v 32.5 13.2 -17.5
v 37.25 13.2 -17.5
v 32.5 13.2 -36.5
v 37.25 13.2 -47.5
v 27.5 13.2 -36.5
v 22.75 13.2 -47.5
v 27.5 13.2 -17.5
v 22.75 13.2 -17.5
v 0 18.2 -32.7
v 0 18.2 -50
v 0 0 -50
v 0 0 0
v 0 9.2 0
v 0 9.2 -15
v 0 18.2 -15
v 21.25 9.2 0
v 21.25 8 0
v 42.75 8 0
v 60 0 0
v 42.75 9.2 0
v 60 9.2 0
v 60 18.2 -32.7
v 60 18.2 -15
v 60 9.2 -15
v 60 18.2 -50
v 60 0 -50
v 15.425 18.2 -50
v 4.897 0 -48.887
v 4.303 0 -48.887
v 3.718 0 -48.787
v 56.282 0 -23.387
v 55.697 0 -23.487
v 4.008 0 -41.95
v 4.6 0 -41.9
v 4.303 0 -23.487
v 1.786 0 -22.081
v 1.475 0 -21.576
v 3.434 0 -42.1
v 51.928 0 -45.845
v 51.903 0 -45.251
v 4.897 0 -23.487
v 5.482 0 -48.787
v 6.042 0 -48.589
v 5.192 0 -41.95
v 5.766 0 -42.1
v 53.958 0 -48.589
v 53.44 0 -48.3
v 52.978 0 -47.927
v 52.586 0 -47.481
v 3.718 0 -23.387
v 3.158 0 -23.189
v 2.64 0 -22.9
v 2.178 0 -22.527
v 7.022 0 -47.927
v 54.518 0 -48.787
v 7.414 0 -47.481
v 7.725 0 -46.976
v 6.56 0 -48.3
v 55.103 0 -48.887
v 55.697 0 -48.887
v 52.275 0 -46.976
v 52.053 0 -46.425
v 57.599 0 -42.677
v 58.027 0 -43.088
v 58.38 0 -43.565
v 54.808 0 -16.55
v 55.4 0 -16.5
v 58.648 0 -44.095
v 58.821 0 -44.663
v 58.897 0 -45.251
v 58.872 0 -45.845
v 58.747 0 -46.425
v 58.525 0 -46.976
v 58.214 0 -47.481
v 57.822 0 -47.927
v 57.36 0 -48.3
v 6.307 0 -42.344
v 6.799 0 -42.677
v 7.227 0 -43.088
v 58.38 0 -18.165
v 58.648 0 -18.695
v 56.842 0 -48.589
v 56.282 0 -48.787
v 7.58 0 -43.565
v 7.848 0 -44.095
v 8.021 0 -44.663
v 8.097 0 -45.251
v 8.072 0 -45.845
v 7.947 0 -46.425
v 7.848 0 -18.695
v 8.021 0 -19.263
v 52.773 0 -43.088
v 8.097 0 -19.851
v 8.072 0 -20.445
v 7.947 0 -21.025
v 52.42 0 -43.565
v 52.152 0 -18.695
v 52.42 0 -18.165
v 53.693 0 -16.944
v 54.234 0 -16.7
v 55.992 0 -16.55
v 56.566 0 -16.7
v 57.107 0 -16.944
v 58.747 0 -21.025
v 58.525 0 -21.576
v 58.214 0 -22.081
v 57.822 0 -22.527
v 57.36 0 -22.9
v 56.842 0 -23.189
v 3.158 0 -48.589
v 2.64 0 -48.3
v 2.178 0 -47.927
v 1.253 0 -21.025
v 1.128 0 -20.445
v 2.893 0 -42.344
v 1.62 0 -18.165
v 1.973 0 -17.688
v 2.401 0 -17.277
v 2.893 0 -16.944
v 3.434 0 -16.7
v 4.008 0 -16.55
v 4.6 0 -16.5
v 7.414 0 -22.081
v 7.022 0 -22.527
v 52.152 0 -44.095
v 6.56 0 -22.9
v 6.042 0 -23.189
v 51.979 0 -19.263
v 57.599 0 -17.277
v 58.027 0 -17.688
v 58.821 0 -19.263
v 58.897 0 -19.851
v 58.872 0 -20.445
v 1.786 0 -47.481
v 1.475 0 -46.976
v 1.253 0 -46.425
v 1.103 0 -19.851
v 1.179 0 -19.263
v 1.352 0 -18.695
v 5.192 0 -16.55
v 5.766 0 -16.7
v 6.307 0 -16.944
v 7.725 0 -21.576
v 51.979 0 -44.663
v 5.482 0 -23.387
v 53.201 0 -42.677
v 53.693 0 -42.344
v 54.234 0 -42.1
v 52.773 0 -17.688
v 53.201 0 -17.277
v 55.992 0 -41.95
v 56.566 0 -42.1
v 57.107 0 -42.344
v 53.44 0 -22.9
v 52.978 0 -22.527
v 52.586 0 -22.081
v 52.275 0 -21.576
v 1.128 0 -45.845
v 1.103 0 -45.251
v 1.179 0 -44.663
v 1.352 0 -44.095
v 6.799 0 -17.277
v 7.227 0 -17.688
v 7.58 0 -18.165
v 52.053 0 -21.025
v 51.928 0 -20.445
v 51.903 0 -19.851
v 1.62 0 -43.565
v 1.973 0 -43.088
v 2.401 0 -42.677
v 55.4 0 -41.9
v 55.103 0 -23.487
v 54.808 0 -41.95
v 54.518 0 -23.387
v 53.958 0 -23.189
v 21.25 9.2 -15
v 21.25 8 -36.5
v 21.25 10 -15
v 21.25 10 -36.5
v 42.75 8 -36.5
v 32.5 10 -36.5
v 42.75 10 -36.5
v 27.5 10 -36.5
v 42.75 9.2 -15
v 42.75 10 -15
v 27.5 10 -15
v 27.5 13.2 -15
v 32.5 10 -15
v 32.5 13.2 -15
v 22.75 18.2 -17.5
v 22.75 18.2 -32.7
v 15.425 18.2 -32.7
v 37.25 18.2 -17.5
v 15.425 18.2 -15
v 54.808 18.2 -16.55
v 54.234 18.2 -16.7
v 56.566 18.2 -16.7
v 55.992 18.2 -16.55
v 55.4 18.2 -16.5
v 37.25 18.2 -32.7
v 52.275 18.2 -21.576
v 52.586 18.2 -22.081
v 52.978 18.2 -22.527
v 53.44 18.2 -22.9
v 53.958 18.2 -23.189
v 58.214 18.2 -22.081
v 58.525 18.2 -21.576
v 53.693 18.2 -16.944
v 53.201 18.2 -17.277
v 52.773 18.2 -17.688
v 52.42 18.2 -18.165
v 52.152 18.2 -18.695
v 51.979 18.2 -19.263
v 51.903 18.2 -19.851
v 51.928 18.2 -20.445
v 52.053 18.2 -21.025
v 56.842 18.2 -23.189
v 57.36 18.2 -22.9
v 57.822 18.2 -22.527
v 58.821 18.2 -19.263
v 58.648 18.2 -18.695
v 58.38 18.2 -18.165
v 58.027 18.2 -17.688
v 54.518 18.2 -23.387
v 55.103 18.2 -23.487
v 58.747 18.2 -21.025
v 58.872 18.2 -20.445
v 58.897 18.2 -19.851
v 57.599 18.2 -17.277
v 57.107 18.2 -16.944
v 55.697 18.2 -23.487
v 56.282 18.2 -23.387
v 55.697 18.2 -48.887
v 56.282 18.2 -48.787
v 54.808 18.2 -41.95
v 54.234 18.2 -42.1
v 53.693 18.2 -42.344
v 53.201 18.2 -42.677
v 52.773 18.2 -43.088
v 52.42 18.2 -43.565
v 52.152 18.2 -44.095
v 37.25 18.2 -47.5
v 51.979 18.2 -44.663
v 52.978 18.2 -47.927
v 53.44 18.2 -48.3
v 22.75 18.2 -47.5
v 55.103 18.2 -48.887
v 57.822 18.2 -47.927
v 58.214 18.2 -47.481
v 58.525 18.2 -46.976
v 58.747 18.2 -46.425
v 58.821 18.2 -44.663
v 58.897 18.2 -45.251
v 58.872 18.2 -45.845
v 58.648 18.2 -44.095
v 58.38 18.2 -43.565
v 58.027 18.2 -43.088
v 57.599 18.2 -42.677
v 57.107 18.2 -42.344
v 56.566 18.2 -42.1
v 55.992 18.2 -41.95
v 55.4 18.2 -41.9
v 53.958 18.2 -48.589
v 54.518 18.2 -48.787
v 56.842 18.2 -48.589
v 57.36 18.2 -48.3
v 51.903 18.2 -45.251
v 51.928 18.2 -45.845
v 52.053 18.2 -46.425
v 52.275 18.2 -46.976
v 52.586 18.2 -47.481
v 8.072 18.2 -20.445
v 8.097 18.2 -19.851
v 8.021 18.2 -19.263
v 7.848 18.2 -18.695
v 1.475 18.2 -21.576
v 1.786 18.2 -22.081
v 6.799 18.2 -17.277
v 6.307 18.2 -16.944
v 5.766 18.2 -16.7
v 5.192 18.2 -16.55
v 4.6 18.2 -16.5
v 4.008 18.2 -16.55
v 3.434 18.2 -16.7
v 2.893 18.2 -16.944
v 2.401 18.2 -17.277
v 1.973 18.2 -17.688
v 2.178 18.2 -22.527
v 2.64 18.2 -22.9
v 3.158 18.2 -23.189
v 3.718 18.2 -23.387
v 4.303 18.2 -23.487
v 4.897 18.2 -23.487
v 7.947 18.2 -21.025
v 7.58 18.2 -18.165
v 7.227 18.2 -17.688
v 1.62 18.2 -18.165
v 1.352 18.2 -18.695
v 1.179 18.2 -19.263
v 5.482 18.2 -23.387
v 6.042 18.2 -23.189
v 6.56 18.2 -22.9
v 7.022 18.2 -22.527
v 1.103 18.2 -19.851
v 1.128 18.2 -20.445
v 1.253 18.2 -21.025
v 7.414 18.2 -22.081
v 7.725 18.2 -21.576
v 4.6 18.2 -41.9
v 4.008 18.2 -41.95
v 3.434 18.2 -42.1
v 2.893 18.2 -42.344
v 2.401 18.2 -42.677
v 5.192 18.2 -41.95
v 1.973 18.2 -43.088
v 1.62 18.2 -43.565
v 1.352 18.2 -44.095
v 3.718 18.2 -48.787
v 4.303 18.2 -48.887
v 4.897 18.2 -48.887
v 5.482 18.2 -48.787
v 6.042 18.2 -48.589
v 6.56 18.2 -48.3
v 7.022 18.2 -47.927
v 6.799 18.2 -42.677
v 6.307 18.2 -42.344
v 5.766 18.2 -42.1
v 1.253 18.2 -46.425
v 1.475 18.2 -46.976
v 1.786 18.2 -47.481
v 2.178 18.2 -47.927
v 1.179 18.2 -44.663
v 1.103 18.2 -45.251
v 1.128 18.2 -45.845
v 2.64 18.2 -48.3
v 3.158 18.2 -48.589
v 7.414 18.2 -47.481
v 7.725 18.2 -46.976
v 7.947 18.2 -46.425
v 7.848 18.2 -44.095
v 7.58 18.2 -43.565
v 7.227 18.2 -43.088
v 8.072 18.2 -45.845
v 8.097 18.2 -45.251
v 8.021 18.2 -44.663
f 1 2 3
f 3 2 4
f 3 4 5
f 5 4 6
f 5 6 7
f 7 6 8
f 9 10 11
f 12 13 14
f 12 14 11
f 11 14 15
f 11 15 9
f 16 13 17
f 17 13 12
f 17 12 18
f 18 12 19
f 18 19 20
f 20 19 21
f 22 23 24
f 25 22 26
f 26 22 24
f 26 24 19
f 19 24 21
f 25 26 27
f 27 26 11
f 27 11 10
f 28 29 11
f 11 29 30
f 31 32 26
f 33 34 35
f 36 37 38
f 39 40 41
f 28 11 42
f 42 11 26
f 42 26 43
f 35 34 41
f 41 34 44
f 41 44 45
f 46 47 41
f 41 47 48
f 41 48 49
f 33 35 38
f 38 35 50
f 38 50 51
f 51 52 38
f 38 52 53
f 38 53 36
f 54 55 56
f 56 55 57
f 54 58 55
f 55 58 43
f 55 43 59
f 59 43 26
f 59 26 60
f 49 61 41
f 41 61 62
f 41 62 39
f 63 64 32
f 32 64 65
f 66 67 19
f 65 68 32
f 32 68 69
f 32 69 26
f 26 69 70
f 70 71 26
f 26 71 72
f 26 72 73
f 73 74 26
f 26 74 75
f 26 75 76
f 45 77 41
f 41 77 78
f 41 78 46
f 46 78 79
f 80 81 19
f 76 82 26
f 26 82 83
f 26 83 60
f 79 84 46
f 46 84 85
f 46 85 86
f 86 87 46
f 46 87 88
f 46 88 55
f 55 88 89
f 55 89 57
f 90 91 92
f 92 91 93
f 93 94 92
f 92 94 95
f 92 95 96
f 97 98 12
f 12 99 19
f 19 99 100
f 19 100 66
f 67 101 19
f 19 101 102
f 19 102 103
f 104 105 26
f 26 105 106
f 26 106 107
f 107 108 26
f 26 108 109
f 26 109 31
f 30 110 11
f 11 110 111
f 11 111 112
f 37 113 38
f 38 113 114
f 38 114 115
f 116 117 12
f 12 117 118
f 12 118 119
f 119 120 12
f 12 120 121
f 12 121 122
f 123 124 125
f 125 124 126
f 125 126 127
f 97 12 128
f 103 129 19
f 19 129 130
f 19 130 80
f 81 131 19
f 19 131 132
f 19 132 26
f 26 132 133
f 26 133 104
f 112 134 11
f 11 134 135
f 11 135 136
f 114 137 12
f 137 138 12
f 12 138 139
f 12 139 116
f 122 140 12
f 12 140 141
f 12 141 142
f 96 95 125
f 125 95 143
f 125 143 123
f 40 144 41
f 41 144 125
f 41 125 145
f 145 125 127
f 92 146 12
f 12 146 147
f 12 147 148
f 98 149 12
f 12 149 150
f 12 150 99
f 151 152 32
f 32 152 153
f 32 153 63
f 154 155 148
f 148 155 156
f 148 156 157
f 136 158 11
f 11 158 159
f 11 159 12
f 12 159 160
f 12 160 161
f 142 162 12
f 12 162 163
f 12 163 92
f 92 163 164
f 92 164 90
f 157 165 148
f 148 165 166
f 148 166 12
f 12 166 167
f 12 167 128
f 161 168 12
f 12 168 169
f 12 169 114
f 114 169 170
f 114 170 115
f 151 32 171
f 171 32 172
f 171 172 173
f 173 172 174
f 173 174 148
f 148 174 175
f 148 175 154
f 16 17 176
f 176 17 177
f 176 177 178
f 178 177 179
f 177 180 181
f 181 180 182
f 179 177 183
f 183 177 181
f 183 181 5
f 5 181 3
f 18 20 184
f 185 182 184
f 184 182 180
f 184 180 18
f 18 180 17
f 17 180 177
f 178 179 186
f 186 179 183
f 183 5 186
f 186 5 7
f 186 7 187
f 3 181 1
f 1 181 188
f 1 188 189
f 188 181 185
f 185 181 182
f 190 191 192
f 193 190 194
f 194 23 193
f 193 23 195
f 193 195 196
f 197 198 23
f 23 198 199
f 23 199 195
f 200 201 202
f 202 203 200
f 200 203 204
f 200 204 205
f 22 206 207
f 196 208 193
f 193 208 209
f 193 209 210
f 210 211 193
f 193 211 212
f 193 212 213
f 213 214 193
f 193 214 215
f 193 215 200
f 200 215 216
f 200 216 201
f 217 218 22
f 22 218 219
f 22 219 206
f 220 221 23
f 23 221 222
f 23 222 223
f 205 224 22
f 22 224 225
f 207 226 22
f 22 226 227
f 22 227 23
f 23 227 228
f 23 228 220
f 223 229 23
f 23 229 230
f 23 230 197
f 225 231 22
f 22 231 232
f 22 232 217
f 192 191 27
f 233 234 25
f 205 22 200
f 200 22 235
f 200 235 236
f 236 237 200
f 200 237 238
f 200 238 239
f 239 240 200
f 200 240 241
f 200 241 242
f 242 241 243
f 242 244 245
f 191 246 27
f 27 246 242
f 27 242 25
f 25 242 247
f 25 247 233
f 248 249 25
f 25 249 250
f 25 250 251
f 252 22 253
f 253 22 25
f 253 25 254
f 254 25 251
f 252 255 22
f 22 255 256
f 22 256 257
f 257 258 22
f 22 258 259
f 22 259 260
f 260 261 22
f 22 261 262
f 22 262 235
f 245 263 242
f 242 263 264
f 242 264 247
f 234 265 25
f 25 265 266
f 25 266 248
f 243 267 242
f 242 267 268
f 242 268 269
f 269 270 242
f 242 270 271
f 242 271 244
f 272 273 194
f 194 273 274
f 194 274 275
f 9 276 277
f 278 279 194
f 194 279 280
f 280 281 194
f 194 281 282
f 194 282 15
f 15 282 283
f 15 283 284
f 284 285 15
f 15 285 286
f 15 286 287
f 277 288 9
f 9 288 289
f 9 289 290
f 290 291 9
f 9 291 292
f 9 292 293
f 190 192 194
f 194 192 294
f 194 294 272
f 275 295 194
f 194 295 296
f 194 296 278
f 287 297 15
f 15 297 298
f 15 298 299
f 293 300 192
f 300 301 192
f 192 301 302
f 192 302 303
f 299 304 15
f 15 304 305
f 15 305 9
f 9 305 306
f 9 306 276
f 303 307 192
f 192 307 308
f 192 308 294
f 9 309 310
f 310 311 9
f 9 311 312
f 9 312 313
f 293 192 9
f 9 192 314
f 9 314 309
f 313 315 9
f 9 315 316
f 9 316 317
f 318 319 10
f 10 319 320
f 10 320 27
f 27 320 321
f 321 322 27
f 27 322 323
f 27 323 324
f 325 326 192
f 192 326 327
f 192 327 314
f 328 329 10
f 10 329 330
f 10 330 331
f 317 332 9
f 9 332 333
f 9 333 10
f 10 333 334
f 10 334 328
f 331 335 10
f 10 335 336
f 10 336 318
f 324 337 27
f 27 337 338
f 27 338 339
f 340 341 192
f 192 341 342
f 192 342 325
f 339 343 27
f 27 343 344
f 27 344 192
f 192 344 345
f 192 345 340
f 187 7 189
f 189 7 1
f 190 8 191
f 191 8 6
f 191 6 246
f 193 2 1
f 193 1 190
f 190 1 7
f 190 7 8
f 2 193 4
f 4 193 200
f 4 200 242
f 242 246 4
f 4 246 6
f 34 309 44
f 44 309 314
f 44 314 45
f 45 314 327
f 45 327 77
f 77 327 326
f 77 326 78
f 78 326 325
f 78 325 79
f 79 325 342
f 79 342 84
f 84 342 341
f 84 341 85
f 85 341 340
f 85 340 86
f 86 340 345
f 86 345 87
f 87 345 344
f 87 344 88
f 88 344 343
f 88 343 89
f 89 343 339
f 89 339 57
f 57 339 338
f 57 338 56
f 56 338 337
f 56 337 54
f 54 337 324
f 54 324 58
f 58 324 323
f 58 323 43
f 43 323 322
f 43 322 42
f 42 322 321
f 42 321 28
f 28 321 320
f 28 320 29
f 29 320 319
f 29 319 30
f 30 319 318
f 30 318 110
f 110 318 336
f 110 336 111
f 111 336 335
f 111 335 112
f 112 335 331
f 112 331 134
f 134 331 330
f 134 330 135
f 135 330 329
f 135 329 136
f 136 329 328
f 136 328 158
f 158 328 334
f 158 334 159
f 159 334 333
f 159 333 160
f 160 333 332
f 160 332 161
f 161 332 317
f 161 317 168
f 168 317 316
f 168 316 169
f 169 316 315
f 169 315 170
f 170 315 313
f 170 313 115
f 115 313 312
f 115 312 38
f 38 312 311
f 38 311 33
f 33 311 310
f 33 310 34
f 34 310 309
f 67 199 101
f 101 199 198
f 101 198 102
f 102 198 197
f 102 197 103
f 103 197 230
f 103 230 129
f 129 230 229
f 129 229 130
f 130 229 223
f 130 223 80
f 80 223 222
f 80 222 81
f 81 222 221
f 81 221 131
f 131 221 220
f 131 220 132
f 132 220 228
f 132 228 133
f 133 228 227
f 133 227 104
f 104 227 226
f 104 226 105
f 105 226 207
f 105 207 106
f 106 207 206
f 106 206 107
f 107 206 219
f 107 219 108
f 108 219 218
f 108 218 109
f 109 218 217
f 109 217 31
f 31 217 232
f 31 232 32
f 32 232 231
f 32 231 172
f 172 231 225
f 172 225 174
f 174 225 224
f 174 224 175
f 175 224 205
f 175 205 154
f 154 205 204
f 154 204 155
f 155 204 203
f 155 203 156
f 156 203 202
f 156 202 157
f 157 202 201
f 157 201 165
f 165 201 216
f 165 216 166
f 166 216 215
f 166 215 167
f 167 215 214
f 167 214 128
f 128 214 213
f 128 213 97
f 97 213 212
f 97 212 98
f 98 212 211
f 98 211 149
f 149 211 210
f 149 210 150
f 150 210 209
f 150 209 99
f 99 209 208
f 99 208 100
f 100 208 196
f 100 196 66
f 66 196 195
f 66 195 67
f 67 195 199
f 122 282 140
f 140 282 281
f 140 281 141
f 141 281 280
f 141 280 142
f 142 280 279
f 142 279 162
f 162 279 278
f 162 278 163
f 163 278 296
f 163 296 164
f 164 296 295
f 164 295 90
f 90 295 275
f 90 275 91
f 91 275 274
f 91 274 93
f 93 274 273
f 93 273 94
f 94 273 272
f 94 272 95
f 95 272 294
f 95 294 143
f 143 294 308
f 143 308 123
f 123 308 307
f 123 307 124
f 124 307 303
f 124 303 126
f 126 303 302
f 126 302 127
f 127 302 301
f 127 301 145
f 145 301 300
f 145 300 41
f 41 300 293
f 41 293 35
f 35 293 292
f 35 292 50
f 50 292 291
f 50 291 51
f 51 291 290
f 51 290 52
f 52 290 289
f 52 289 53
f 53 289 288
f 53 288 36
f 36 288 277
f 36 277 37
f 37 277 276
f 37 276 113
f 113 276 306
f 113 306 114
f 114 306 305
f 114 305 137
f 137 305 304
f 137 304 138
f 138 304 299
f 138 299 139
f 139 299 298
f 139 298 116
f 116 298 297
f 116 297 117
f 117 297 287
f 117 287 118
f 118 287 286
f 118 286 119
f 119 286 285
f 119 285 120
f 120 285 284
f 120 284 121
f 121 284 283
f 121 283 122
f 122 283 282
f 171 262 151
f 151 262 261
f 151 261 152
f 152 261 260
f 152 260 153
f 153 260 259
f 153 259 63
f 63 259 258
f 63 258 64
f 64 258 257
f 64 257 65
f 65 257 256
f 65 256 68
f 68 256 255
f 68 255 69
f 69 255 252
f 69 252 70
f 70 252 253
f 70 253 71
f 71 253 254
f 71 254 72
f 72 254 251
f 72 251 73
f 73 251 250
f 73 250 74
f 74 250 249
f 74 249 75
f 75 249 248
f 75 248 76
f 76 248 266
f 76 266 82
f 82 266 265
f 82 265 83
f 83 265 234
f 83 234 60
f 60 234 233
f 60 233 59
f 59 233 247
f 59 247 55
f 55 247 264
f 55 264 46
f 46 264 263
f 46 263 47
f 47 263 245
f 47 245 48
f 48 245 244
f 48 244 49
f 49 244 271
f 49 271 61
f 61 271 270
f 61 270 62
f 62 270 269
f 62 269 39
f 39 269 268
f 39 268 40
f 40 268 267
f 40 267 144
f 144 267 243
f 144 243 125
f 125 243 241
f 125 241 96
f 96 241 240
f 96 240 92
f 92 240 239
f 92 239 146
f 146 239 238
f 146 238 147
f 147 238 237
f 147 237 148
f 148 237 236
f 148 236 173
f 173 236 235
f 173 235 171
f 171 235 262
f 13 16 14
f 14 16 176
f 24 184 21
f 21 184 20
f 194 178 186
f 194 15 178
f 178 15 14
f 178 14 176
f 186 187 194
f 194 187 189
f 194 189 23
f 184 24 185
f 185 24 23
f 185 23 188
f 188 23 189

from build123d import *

# Parameters (mm, degrees)
SKETCH2_W               = 60
SKETCH2_H               = 50
BOSS_EXTRUDE1_DEPTH     = 10
SKETCH3_W               = 21.5
SKETCH3_H               = 36.5
CUT_EXTRUDE2_DEPTH      = 2
BOSS_EXTRUDE2_DEPTH     = 3.2
SKETCH5_W               = 60
SKETCH5_H               = 50
SKETCH5_W_2             = 14.5
SKETCH5_H_2             = 30
BOSS_EXTRUDE3_DEPTH     = 5
SKETCH1_R               = 3.5
CUT_EXTRUDE1_DEPTH      = 80.210100366
CUT_EXTRUDE1_DEPTH_BACK = 80.210100366
SKETCH7_W               = 60
SKETCH7_H               = 15
CUT_EXTRUDE3_DEPTH      = 9


with BuildPart() as part:
    # Sketch2 → Boss-Extrude1 (new body)
    with BuildSketch(Plane(origin=(0, 0, 0), x_dir=(1, 0, 0), z_dir=(0, 1, 0))):
        with Locations((30, 25)):
            Rectangle(SKETCH2_W, SKETCH2_H)
    extrude(amount=BOSS_EXTRUDE1_DEPTH)

    # Sketch3 → Cut-Extrude2 (cut)
    with BuildSketch(Plane(origin=(0, 10, 0), x_dir=(1, 0, 0), z_dir=(0, 1, 0))):
        with Locations((32, 18.25)):
            Rectangle(SKETCH3_W, SKETCH3_H)
    extrude(amount=-CUT_EXTRUDE2_DEPTH, mode=Mode.SUBTRACT)

    # Sketch4 → Boss-Extrude2 (add)
    with BuildSketch(Plane(origin=(0, 10, 0), x_dir=(1, 0, 0), z_dir=(0, 1, 0))):
        Polygon((27.5, 0), (27.5, 36.5), (32.5, 36.5), (32.5, 0), (60, 0), (60, 50), (0, 50), (0, 0), align=None)
    extrude(amount=BOSS_EXTRUDE2_DEPTH)

    # Sketch5 → Boss-Extrude3 (add)
    with BuildSketch(Plane(origin=(0, 13.2, 0), x_dir=(1, 0, 0), z_dir=(0, 1, 0))):
        with Locations((30, 25)):
            Rectangle(SKETCH5_W, SKETCH5_H)
        with Locations((30, 32.5)):
            Rectangle(SKETCH5_W_2, SKETCH5_H_2, mode=Mode.SUBTRACT)
    extrude(amount=BOSS_EXTRUDE3_DEPTH)

    # Sketch1 → Cut-Extrude1 (cut, two sides)
    with BuildSketch(Plane(origin=(0, 13.2, 0), x_dir=(1, 0, 0), z_dir=(0, 1, 0))) as cut_extrude1_sk:
        with BuildLine():
            Line((4.6, 48.9), (4.6, 45.4))
            Line((4.6, 45.4), (1.1, 45.4))
            ThreePointArc((1.1, 45.4), (4.6, 41.9), (8.1, 45.4))
            ThreePointArc((8.1, 45.4), (7.074873734, 47.874873734), (4.6, 48.9))
        make_face()
        with BuildLine():
            Line((1.1, 45.4), (4.6, 45.4))
            Line((4.6, 45.4), (4.6, 48.9))
            ThreePointArc((4.6, 48.9), (2.125126266, 47.874873734), (1.1, 45.4))
        make_face()
        with Locations(Location((55.4, 45.4, 0), (0, 0, 270))):
            Circle(SKETCH1_R)
        with Locations(Location((4.6, 20, 0), (0, 0, 270))):
            Circle(SKETCH1_R)
        with Locations(Location((55.4, 20, 0), (0, 0, 270))):
            Circle(SKETCH1_R)
    extrude(amount=CUT_EXTRUDE1_DEPTH, mode=Mode.SUBTRACT)
    extrude(cut_extrude1_sk.sketch, amount=-CUT_EXTRUDE1_DEPTH_BACK, mode=Mode.SUBTRACT)

    # Sketch7 → Cut-Extrude3 (cut)
    with BuildSketch(Plane(origin=(0, 18.2, 0), x_dir=(1, 0, 0), z_dir=(0, 1, 0))):
        with Locations((30, 7.5)):
            Rectangle(SKETCH7_W, SKETCH7_H)
    extrude(amount=-CUT_EXTRUDE3_DEPTH, mode=Mode.SUBTRACT)


solid = part.part
